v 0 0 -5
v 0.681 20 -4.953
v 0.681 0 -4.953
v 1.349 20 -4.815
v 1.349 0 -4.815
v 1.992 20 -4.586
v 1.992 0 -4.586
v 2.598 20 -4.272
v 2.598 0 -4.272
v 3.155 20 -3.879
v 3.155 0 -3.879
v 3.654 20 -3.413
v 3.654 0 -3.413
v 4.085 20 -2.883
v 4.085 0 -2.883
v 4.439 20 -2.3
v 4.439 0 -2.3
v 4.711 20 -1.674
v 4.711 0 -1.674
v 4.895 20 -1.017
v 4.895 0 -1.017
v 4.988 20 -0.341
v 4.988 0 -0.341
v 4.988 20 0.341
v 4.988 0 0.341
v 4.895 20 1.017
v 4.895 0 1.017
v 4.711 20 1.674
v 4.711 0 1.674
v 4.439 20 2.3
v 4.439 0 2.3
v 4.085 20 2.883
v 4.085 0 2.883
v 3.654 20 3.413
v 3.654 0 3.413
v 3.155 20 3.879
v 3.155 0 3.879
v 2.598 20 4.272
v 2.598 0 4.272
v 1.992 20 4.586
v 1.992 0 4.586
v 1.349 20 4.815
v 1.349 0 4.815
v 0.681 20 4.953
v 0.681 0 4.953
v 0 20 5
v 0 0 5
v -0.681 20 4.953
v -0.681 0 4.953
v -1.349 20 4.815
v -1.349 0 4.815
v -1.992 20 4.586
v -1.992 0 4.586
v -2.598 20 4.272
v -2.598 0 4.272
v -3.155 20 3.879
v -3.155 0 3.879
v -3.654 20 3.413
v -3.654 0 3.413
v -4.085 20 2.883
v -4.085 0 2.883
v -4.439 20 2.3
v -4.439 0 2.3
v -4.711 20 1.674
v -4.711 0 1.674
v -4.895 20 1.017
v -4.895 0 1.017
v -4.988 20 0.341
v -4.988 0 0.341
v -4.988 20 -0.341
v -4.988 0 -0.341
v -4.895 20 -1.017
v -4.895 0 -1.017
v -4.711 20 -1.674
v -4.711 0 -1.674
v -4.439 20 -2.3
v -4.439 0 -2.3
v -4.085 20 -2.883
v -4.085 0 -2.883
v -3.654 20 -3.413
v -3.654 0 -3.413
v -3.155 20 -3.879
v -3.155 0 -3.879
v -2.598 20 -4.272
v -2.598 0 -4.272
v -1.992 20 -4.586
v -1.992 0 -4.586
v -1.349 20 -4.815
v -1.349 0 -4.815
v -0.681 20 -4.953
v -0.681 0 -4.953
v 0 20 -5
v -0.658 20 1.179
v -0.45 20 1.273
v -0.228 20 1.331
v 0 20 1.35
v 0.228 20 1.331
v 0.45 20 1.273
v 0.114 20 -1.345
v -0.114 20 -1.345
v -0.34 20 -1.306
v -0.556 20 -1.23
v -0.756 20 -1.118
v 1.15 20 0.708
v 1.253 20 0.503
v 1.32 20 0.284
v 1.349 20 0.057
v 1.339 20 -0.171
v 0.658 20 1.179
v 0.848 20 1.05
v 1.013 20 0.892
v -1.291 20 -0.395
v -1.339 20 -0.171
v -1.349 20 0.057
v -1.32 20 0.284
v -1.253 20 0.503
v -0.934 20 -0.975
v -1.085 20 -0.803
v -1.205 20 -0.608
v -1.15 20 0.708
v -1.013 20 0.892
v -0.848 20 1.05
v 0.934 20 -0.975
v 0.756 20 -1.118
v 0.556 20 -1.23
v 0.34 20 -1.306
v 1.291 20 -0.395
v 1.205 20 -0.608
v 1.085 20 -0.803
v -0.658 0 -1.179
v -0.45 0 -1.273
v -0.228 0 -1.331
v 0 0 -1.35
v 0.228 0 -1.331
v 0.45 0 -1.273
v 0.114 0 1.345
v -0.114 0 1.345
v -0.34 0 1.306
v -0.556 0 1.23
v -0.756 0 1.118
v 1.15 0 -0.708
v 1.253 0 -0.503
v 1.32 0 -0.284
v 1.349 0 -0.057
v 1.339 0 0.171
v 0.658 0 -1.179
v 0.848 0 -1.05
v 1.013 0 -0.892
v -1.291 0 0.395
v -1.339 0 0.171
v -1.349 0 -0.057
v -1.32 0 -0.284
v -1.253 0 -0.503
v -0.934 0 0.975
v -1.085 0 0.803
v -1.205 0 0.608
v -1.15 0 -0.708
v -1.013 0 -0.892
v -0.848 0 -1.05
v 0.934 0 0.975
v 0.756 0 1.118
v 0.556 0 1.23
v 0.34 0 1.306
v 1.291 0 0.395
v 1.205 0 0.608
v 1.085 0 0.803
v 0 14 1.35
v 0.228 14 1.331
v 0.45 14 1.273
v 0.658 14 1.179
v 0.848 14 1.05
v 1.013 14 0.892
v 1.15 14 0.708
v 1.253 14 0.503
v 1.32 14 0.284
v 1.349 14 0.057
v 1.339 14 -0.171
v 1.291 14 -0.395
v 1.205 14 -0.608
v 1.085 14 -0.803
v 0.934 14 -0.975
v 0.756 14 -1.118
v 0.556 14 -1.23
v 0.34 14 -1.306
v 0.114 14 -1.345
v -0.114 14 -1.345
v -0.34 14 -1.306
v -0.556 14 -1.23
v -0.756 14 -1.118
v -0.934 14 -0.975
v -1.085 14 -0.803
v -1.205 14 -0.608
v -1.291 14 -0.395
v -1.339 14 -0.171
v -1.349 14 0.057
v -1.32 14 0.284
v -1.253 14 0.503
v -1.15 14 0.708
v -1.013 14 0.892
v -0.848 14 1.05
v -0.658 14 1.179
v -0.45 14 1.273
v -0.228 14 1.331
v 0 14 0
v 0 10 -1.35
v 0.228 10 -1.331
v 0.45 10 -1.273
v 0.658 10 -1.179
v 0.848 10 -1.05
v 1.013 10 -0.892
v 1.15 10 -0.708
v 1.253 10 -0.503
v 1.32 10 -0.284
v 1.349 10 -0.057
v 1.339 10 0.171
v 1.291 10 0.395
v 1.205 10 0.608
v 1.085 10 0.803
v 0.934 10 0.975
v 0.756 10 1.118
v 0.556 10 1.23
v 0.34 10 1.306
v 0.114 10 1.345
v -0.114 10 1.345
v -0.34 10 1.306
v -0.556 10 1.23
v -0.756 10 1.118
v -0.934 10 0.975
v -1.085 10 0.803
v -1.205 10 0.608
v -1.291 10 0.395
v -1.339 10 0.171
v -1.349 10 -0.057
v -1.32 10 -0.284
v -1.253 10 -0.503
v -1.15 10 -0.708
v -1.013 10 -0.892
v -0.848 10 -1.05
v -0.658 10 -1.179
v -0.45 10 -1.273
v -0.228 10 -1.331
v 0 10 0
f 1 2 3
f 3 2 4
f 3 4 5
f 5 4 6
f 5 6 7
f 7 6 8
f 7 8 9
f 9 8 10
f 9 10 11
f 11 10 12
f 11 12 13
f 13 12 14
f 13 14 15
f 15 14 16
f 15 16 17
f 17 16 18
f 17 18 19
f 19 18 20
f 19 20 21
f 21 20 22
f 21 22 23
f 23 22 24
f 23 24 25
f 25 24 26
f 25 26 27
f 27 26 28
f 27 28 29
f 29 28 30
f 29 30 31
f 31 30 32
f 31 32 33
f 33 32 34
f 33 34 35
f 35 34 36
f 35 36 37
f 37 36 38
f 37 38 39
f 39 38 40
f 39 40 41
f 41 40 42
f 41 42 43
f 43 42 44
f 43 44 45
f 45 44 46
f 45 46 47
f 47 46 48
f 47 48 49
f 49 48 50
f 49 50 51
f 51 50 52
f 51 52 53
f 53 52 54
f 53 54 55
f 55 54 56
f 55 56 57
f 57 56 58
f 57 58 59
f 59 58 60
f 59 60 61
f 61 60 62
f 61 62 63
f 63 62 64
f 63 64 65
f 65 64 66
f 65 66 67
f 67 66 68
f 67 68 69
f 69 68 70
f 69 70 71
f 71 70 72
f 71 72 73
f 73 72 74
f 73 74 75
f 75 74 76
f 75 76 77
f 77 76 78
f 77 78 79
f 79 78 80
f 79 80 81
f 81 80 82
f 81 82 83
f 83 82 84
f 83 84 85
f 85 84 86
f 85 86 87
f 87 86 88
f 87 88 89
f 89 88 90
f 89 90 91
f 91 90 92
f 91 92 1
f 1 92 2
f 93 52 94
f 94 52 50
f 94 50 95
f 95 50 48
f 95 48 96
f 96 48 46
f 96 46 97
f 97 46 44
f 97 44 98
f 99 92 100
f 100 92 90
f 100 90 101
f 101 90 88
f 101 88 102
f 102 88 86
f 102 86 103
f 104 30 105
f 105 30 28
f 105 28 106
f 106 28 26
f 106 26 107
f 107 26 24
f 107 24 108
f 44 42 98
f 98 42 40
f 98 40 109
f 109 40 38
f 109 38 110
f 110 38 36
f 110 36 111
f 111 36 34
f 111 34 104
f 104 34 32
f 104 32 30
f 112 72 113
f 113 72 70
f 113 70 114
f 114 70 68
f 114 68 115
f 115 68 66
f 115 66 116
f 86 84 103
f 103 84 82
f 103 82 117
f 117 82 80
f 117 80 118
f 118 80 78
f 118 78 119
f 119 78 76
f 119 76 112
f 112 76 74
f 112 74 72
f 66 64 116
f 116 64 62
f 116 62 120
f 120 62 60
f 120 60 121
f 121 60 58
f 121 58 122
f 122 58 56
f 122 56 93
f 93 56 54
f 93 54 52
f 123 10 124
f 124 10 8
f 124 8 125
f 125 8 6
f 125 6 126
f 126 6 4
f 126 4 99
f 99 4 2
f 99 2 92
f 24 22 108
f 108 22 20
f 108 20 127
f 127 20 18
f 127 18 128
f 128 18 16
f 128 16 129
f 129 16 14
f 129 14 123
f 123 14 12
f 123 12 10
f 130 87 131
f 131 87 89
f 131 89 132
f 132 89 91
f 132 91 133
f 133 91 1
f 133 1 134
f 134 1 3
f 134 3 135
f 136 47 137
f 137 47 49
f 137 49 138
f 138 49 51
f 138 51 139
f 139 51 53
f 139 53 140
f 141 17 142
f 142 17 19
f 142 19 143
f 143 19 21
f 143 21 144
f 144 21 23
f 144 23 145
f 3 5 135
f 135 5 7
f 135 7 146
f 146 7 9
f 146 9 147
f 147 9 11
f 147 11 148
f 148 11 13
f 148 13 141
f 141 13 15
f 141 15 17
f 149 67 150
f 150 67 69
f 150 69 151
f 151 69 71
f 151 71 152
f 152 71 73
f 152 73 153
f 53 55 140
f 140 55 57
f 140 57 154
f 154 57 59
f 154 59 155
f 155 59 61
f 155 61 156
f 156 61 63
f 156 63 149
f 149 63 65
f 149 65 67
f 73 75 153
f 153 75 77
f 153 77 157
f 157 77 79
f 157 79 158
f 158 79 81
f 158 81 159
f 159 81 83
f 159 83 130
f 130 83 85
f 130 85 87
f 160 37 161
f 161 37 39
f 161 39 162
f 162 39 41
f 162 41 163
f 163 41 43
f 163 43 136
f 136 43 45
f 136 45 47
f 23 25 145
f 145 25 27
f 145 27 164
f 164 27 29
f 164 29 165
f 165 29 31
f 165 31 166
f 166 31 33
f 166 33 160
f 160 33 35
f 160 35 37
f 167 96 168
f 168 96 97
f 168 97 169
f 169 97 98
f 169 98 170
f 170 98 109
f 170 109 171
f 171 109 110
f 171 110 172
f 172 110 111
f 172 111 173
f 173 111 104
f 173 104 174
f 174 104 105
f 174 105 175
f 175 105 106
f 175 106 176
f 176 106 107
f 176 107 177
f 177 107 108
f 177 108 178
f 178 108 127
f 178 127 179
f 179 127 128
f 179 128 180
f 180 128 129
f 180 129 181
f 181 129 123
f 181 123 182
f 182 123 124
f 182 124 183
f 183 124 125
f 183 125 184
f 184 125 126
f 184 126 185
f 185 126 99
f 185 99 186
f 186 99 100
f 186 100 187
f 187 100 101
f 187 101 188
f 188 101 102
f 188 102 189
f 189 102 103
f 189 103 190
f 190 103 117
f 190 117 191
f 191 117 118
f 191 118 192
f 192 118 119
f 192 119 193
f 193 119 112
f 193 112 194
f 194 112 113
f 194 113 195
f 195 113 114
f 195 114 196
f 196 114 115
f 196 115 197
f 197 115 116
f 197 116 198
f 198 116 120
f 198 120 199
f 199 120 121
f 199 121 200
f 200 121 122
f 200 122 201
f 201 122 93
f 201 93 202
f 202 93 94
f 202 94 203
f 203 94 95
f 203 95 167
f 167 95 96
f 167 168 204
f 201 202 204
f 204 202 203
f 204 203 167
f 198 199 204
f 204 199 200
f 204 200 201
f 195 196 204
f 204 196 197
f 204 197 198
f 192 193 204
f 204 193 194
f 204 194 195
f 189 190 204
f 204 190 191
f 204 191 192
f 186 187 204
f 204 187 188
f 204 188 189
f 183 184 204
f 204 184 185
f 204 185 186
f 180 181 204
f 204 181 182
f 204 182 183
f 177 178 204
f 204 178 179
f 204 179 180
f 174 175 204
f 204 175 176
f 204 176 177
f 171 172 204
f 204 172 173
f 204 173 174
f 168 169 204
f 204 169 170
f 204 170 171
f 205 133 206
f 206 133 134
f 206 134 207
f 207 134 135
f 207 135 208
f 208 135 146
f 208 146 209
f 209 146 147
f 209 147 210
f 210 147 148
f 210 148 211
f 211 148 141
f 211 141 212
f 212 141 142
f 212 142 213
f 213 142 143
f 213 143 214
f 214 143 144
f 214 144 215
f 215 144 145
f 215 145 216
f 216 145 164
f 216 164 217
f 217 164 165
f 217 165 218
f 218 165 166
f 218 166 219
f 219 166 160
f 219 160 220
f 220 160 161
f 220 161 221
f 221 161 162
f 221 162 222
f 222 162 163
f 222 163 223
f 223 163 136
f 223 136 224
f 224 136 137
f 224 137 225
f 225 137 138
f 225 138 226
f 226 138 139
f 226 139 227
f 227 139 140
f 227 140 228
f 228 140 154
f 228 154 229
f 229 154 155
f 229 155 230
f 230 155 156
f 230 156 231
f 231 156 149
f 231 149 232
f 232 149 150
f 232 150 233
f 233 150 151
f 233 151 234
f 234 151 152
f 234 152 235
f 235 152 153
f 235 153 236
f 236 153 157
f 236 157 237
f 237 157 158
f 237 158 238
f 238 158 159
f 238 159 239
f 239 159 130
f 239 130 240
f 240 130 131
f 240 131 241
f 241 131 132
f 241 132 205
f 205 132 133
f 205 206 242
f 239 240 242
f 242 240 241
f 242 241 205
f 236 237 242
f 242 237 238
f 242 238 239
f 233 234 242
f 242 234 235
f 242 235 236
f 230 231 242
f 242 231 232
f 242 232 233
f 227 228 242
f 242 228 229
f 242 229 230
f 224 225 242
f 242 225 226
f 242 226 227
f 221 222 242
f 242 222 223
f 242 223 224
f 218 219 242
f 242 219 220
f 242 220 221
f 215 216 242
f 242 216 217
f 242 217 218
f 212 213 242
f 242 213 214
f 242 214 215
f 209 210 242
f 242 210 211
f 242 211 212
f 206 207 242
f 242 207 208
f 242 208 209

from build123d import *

# Parameters (mm, degrees)
SKETCH1_R           = 5
BOSS_EXTRUDE1_DEPTH = 20
SKETCH2_R           = 1.35
CUT_EXTRUDE1_DEPTH  = 6
SKETCH12_R          = 1.35
CUT_EXTRUDE2_DEPTH  = 10


with BuildPart() as part:
    # Sketch1 → Boss-Extrude1 (new body)
    with BuildSketch(Plane(origin=(0, 0, 0), x_dir=(1, 0, 0), z_dir=(0, 1, 0))):
        Circle(SKETCH1_R)
    extrude(amount=BOSS_EXTRUDE1_DEPTH)

    # Sketch2 → Cut-Extrude1 (cut)
    with BuildSketch(Plane(origin=(0, 20, 0), x_dir=(1, 0, 0), z_dir=(0, 1, 0))):
        Circle(SKETCH2_R)
    extrude(amount=-CUT_EXTRUDE1_DEPTH, mode=Mode.SUBTRACT)

    # Sketch12 → Cut-Extrude2 (cut)
    with BuildSketch(Plane.XZ):
        Circle(SKETCH12_R)
    extrude(amount=-CUT_EXTRUDE2_DEPTH, mode=Mode.SUBTRACT)


solid = part.part
